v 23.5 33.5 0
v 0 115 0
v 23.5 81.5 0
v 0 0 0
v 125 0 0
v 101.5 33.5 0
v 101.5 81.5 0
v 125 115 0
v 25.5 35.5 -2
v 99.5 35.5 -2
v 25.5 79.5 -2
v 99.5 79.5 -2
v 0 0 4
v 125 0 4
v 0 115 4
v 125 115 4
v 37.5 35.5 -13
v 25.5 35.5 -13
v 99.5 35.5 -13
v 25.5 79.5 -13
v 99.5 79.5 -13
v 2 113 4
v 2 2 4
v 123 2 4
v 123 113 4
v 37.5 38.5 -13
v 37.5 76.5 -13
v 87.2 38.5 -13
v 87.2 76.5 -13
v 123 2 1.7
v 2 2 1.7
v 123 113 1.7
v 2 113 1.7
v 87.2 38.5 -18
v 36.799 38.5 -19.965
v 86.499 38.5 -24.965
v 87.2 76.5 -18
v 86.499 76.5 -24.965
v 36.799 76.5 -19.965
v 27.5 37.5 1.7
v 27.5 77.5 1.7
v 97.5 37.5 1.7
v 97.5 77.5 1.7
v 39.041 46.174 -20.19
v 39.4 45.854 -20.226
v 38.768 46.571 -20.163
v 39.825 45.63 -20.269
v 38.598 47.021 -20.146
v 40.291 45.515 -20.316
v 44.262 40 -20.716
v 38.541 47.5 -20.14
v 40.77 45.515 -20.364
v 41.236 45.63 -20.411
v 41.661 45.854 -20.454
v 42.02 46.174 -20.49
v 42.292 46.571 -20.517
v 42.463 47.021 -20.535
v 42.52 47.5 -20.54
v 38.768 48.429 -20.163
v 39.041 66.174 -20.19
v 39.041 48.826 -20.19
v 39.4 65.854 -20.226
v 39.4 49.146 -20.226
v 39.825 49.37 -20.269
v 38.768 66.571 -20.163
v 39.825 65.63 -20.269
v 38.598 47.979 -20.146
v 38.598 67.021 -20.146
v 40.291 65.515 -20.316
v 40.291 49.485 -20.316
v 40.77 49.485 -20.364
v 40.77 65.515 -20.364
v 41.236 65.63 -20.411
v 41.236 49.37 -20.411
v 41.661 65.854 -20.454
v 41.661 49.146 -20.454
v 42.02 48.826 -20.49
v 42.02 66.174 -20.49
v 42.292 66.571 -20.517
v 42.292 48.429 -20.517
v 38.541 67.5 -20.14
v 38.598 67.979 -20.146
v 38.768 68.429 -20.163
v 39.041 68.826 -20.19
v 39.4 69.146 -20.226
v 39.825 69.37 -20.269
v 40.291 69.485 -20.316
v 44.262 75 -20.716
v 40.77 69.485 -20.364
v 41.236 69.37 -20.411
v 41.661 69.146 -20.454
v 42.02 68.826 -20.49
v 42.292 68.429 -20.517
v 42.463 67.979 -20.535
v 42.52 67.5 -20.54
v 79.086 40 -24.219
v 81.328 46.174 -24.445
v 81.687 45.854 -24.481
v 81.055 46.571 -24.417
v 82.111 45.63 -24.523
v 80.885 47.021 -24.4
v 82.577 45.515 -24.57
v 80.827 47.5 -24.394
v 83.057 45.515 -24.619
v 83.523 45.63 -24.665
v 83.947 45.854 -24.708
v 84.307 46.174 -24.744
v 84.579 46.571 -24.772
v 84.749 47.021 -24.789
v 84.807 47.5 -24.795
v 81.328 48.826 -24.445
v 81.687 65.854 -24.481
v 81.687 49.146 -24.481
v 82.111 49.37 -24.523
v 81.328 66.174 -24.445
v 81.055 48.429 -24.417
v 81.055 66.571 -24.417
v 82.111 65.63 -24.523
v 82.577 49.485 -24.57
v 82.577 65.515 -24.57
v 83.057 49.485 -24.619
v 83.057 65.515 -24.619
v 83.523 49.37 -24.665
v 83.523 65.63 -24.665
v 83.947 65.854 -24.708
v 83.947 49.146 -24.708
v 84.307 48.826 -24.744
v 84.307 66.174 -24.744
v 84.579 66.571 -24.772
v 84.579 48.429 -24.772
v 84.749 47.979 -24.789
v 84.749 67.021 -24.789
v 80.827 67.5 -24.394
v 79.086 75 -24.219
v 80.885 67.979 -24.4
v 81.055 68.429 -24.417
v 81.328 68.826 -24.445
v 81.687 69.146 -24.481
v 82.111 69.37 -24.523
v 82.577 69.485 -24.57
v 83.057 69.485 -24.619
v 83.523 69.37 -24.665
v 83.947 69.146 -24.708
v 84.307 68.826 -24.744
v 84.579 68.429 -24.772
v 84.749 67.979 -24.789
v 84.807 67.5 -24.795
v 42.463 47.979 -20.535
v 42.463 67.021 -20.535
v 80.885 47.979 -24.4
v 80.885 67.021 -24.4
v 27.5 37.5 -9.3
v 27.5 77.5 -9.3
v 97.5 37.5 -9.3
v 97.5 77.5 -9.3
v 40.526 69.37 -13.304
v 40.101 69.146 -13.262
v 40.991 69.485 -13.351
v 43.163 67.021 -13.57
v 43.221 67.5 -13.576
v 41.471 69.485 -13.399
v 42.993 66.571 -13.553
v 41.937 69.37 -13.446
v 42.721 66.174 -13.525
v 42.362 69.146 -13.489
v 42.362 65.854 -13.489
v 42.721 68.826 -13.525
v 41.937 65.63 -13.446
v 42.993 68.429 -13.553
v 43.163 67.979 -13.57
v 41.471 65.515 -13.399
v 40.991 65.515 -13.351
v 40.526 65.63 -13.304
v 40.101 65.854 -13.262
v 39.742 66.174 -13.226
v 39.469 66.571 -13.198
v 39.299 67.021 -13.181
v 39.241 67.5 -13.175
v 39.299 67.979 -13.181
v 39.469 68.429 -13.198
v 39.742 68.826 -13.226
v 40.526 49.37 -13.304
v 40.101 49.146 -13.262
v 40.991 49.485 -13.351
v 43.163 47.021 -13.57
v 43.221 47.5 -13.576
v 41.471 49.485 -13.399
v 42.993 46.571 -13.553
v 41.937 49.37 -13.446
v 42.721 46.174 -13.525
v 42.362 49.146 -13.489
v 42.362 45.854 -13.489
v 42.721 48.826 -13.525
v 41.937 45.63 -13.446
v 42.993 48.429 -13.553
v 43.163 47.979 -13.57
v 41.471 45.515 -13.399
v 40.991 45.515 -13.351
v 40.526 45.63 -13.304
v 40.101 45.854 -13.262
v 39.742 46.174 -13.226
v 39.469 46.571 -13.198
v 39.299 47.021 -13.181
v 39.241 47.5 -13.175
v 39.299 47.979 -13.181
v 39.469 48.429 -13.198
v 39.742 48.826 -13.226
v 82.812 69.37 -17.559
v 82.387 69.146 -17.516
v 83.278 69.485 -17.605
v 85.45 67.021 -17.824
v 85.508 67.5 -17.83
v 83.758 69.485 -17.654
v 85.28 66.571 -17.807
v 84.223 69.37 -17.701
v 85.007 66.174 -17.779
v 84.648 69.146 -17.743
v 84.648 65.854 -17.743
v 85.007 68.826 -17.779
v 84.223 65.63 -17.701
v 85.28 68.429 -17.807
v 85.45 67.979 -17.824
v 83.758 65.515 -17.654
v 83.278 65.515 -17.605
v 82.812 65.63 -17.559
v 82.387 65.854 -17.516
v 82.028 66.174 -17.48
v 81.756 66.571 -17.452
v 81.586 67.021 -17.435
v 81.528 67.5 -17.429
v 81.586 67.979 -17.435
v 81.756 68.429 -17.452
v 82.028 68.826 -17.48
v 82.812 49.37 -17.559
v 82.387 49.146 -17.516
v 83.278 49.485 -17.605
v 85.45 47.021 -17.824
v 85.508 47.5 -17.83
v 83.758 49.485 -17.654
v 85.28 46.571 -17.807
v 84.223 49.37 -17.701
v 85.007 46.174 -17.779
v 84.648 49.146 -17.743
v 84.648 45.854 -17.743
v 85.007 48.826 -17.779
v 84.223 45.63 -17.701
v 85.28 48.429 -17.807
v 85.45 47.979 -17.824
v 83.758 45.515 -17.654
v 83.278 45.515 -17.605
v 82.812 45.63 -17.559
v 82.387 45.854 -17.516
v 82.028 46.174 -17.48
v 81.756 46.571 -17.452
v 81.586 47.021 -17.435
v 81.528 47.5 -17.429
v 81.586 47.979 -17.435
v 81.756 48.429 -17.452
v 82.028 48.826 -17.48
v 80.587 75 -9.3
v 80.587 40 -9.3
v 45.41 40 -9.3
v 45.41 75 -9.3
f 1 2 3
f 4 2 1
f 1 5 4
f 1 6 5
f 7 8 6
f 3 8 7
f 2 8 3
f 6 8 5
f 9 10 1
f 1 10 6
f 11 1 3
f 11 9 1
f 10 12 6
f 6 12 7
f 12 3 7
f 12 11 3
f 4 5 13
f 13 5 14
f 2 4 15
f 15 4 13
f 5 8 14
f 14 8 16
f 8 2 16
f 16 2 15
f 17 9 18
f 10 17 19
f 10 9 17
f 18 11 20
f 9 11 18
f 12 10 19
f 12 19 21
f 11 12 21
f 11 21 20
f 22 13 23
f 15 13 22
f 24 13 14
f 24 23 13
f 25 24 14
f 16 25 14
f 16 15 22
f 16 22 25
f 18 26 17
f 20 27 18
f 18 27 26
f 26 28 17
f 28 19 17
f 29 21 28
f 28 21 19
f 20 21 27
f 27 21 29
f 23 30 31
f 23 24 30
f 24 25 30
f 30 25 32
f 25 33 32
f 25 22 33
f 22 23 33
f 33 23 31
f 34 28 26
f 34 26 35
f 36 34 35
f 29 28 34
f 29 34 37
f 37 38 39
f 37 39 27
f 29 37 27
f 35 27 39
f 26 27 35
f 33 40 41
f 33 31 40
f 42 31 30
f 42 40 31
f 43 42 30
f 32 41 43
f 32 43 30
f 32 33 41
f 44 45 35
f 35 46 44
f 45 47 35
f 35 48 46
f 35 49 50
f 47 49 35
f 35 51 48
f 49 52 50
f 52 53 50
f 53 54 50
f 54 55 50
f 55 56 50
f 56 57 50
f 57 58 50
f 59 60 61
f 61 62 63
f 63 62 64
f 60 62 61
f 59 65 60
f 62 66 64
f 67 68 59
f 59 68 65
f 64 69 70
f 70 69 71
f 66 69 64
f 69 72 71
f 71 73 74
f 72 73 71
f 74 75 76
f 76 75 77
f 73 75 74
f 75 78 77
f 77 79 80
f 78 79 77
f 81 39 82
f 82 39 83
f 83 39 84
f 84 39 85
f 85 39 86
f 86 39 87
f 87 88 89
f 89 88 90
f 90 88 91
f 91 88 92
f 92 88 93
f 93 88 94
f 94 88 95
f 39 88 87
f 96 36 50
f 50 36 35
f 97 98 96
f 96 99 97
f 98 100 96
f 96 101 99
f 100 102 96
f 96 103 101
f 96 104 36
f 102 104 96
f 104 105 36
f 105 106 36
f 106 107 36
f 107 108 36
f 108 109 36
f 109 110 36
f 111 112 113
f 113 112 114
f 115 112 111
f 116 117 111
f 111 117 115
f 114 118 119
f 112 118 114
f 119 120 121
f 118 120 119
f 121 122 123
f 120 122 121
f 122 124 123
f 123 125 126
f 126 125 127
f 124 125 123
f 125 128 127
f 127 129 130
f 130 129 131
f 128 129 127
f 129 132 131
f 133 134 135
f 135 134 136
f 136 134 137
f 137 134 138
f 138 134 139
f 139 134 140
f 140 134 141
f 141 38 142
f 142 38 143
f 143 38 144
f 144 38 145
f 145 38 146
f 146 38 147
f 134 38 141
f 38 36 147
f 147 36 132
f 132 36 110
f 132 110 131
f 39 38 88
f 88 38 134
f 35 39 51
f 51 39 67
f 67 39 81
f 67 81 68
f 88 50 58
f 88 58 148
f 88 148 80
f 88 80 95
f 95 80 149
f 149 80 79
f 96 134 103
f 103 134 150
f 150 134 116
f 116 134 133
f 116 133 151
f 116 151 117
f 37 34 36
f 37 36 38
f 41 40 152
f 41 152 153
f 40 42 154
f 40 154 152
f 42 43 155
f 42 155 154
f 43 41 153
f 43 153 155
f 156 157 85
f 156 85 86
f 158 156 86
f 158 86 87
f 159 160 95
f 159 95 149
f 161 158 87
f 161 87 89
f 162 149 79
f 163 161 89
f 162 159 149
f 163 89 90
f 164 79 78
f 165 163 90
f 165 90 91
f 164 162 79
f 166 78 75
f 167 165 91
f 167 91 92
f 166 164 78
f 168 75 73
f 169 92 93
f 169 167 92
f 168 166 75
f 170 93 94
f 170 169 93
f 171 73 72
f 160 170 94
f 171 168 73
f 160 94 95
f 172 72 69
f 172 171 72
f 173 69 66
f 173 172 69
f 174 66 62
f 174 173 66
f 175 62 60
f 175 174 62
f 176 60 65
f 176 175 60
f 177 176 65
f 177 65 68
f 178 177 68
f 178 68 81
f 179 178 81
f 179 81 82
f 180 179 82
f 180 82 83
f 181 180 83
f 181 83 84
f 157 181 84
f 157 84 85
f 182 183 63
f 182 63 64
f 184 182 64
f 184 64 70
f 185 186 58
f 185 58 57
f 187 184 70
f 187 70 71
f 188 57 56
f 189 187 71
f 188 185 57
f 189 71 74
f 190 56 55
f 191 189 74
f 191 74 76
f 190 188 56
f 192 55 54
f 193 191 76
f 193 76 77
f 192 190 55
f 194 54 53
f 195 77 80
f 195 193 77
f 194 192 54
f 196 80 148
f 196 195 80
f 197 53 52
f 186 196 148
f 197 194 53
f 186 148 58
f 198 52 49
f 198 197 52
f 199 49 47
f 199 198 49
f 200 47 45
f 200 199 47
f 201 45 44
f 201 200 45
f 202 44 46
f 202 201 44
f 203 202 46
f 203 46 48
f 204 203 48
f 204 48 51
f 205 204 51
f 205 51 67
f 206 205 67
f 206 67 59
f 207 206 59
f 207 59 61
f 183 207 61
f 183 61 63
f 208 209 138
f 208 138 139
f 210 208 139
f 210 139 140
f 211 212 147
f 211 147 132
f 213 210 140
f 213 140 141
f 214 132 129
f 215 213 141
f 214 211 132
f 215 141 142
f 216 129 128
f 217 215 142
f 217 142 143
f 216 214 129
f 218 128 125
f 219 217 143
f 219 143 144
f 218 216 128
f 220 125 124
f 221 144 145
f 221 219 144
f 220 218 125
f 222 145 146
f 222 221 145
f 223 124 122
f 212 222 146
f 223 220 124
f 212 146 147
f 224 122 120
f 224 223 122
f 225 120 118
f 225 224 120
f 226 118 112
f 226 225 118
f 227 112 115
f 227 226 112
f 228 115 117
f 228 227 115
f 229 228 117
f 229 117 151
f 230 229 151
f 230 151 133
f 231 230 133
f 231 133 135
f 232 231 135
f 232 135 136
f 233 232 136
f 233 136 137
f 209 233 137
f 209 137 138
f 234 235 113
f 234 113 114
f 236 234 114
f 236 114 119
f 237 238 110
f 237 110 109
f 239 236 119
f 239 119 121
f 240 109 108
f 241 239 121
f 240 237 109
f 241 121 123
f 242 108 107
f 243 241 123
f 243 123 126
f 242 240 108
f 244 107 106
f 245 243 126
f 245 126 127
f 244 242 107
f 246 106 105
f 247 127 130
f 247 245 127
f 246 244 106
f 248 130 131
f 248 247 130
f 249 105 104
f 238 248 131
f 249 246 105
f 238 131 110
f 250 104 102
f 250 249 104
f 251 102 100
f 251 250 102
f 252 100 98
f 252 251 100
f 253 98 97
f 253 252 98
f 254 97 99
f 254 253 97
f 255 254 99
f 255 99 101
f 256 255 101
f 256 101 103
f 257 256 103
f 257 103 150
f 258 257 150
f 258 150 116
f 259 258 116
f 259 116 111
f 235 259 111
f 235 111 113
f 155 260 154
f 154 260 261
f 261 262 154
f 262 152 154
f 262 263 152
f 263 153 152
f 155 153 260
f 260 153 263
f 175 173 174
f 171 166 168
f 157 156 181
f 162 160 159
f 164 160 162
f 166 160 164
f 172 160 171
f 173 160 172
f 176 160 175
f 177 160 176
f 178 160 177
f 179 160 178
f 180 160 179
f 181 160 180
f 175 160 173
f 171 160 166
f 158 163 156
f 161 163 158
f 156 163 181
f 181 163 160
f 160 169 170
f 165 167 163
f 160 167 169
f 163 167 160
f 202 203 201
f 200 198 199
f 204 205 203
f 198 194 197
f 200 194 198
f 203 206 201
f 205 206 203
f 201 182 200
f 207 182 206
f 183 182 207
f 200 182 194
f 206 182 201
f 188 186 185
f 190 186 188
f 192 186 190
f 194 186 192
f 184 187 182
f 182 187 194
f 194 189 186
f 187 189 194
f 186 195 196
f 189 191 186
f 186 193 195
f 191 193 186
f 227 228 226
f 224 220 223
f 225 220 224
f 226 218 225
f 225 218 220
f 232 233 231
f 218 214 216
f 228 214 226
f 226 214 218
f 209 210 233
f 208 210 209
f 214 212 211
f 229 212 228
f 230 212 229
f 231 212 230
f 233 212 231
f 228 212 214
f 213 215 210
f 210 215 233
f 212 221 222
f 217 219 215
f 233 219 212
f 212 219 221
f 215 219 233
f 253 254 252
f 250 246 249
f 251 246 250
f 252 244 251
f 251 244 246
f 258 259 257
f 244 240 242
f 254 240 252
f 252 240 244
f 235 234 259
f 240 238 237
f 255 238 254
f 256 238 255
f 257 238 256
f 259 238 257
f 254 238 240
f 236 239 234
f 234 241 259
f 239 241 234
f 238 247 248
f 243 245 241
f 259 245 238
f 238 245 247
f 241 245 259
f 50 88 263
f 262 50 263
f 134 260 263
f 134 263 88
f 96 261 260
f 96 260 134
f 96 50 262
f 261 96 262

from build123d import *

# Parameters (mm, degrees)
SKETCH_W        = 125
SKETCH_H        = 115
PAD_DEPTH       = 4
SKETCH001_W     = 121
SKETCH001_H     = 111
POCKET_DEPTH    = 2.3
SKETCH002_W     = 74
SKETCH002_H     = 44
PAD001_DEPTH    = 13
CHAMFER_SIZE    = 2
SKETCH003_W     = 70
SKETCH003_H     = 40
POCKET001_DEPTH = 11
SKETCH004_W     = 49.7
SKETCH004_H     = 38
PAD002_DEPTH    = 5
POCKET002_DEPTH = 76.501
SKETCH006_W     = 49.9508758682
SKETCH006_H     = 38
SKETCH006_R     = 2
SKETCH006_W_2   = 35
SKETCH006_H_2   = 35
PAD003_DEPTH    = 7
SKETCH007_W     = 35
SKETCH007_H     = 35
POCKET003_DEPTH = 25.6742234963


with BuildPart() as part:
    # Sketch → Pad (new body)
    with BuildSketch(Plane.XY):
        with Locations((62.5, 57.5)):
            Rectangle(SKETCH_W, SKETCH_H)
    extrude(amount=PAD_DEPTH)

    # Sketch001 (on Face6 of Pad) → Pocket (cut)
    with BuildSketch(Plane.XY.offset(4)):
        with Locations((62.5, 57.5)):
            Rectangle(SKETCH001_W, SKETCH001_H)
    extrude(amount=-POCKET_DEPTH, mode=Mode.SUBTRACT)

    # Sketch002 (on Face4 of Pocket) → Pad001 (join)
    with BuildSketch(Plane(origin=(0, 0, 0), x_dir=(1, 0, 0), z_dir=(0, 0, -1))):
        with Locations((62.5, -57.5)):
            Rectangle(SKETCH002_W, SKETCH002_H)
    extrude(amount=PAD001_DEPTH)

    # Chamfer
    chamfer_edges = [part.edges().sort_by_distance(p)[0] for p in [
        (62.5, 35.5, 0),
        (99.5, 57.5, 0),
        (62.5, 79.5, 0),
        (25.5, 57.5, 0),
    ]]
    chamfer(chamfer_edges, length=CHAMFER_SIZE)

    # Sketch003 (on Face20 of Chamfer) → Pocket001 (cut)
    with BuildSketch(Plane.XY.offset(1.7)):
        with Locations((62.5, 57.5)):
            Rectangle(SKETCH003_W, SKETCH003_H)
    extrude(amount=-POCKET001_DEPTH, mode=Mode.SUBTRACT)

    # Sketch004 (on Face15 of Pocket001) → Pad002 (join)
    with BuildSketch(Plane(origin=(0, 0, -13), x_dir=(1, 0, 0), z_dir=(0, 0, -1))):
        with Locations((62.35, -57.5)):
            Rectangle(SKETCH004_W, SKETCH004_H)
    extrude(amount=PAD002_DEPTH)

    # Sketch005 (on Face22 of Pad002) → Pocket002 (cut, through all)
    with BuildSketch(Plane(origin=(0, 76.5, 0), x_dir=(-1, 0, 0), z_dir=(0, 1, 0))):
        Polygon((-37.5, -13), (-87.2, -18), (-37.5, -18), align=None)
    extrude(amount=-POCKET002_DEPTH, mode=Mode.SUBTRACT)

    # Sketch006 (on Face23 of Pocket002) → Pad003 (join)
    with BuildSketch(Plane(origin=(-0.9190049257, 0, -9.1349089612), x_dir=(0.9949775482, 0, -0.1000983449), z_dir=(-0.1000983449, 0, -0.9949775482))):
        with Locations((63.5883744738, -57.5)):
            Rectangle(SKETCH006_W, SKETCH006_H)
        with Locations((42.3629365397, -47.5)):
            Circle(SKETCH006_R, mode=Mode.SUBTRACT)
        with Locations((42.3629365397, -67.5)):
            Circle(SKETCH006_R, mode=Mode.SUBTRACT)
        with Locations((84.8629365397, -47.5)):
            Circle(SKETCH006_R, mode=Mode.SUBTRACT)
        with Locations((84.8629365397, -67.5)):
            Circle(SKETCH006_R, mode=Mode.SUBTRACT)
        with Locations((63.6129365397, -57.5)):
            Rectangle(SKETCH006_W_2, SKETCH006_H_2, mode=Mode.SUBTRACT)
    extrude(amount=PAD003_DEPTH)

    # Sketch007 (on Face38 of Pad003) → Pocket003 (cut, through all)
    with BuildSketch(Plane(origin=(-0.9190049257, 0, -9.1349089612), x_dir=(0.9949775482, 0, -0.1000983449), z_dir=(-0.1000983449, 0, -0.9949775482))):
        with Locations((63.6129365397, -57.5)):
            Rectangle(SKETCH007_W, SKETCH007_H)
    extrude(amount=-POCKET003_DEPTH, mode=Mode.SUBTRACT)


solid = part.part
